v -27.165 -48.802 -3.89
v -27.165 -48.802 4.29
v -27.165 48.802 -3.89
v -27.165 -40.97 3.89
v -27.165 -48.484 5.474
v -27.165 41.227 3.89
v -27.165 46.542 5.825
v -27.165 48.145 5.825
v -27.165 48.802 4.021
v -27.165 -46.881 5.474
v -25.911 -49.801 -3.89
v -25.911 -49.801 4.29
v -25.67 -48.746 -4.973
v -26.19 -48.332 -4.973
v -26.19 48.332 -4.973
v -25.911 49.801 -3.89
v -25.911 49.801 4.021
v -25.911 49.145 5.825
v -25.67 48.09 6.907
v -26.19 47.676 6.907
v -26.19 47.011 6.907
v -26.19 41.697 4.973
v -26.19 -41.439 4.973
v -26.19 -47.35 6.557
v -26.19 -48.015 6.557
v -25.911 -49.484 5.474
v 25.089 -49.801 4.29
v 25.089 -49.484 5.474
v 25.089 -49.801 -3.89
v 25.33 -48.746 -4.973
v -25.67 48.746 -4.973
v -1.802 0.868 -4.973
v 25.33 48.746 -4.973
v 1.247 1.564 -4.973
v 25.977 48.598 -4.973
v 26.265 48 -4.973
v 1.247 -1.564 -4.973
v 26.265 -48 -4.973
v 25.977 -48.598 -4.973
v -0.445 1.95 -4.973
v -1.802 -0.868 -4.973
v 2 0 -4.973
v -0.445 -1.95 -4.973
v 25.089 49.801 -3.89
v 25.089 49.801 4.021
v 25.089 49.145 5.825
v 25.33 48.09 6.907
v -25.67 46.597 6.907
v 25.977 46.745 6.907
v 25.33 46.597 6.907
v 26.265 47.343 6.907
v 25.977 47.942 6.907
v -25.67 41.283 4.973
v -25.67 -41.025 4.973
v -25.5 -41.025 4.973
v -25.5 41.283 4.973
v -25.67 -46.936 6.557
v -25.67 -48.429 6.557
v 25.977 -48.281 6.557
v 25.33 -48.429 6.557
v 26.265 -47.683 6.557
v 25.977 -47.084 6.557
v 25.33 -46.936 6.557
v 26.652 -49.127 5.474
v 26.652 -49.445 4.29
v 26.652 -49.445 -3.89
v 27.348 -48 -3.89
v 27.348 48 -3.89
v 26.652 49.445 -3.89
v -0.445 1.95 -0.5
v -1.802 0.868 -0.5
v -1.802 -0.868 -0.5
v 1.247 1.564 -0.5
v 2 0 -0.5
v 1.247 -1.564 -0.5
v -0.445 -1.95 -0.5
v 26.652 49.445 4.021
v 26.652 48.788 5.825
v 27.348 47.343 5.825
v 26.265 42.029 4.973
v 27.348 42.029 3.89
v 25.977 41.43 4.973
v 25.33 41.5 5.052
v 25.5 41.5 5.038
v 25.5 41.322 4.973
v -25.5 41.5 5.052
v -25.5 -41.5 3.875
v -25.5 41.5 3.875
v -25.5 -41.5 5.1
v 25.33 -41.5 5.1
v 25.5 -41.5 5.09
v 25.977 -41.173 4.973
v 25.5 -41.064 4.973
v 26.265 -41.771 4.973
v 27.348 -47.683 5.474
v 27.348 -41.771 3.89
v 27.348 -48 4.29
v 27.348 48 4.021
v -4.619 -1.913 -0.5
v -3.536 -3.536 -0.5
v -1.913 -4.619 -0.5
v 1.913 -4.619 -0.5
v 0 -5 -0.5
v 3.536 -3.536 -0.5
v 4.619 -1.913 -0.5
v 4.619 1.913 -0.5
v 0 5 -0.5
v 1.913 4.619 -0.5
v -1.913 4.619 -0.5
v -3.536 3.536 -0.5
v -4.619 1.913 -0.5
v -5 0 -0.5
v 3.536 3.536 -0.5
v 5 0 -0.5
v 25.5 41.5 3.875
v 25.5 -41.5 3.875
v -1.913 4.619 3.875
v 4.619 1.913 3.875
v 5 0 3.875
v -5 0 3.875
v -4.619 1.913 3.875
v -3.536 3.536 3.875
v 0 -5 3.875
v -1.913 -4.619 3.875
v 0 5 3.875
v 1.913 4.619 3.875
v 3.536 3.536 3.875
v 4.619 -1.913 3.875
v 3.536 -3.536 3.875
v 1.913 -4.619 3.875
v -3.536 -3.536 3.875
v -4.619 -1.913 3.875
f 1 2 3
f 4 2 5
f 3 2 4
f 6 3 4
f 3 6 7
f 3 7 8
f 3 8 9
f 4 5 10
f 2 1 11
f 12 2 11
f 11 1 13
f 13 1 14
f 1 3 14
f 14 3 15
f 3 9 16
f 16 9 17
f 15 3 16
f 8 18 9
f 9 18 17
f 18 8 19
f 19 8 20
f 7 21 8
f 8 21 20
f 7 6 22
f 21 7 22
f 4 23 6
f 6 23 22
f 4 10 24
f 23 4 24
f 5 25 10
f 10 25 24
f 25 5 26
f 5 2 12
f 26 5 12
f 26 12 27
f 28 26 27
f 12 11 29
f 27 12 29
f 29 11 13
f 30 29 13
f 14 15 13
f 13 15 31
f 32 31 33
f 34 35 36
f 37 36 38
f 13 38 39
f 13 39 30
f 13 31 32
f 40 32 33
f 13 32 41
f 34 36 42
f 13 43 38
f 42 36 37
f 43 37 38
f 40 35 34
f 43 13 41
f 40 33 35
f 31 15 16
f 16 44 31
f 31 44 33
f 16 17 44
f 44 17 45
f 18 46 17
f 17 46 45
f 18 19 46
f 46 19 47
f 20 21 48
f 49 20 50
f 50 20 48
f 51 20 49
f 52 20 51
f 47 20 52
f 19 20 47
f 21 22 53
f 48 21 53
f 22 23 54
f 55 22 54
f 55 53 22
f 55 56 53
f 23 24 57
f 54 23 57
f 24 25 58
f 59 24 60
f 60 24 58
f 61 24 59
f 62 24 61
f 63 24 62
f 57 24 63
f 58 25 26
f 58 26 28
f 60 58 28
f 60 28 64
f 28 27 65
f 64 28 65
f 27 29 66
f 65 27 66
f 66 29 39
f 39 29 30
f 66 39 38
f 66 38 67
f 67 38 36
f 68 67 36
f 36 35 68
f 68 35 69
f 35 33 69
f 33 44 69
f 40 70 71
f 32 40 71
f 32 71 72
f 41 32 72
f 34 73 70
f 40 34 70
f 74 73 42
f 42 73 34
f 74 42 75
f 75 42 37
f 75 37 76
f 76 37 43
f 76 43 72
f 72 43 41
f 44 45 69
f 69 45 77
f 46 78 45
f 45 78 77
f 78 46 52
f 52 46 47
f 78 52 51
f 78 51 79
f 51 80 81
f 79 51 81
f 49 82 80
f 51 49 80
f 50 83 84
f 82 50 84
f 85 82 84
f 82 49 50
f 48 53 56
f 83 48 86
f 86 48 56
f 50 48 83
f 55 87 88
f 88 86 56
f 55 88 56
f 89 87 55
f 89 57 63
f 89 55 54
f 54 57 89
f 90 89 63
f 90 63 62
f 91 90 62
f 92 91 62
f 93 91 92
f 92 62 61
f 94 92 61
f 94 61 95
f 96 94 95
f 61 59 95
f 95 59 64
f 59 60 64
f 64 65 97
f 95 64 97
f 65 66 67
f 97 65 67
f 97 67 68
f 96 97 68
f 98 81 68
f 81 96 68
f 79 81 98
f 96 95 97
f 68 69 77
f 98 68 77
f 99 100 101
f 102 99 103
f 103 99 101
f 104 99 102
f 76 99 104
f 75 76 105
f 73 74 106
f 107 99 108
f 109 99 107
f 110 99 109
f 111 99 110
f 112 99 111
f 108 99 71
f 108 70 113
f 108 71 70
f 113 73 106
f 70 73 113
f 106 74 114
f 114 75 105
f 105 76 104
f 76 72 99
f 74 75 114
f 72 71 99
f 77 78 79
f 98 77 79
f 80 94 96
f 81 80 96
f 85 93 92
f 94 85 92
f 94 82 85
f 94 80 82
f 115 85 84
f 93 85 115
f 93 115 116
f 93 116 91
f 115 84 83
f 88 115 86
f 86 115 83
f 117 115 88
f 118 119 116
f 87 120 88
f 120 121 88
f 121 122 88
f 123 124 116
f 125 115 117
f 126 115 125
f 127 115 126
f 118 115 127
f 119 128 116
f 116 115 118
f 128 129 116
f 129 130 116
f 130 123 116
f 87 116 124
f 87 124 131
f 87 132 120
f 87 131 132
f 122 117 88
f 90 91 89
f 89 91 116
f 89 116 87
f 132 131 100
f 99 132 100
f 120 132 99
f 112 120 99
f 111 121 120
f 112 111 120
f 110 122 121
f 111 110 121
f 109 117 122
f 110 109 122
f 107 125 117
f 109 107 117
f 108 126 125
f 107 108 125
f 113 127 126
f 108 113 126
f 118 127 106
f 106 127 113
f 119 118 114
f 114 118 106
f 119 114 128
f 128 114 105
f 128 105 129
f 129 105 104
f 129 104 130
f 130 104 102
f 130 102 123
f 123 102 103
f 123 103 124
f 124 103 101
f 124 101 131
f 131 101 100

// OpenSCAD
width = 51.0;
length = 83.0;
thickness = 1.25;


difference()
{
	minkowski()
	{
		difference()
		{
			union()
			{
			 	cube([width, length+13, 5 + thickness], center=true);
				 translate([0, length/2 + 2, 1]) rotate(a=20, v=[1,0,0]) cube([width, 10, 5], center=true);
				 translate([0, -length/2 - 2, 1]) rotate(a=-15, v=[1,0,0]) cube([width, 10, 5], center=true);
			}
		 translate([0, (length+13)/2 +5, 1]) cube([width, 10, 10], center=true);
		 translate([0, -(length+13)/2 -5, 1]) cube([width, 10, 10], center=true);
		}
		
		sphere(r=2);
	}
	
	translate([0, 0, 4.5]) cube([width, length, thickness], center=true);
	translate([0, 0, 2]) cylinder (r=5, h = 5, center=true);
	cylinder (r=2, h = 10, center=true);

}
